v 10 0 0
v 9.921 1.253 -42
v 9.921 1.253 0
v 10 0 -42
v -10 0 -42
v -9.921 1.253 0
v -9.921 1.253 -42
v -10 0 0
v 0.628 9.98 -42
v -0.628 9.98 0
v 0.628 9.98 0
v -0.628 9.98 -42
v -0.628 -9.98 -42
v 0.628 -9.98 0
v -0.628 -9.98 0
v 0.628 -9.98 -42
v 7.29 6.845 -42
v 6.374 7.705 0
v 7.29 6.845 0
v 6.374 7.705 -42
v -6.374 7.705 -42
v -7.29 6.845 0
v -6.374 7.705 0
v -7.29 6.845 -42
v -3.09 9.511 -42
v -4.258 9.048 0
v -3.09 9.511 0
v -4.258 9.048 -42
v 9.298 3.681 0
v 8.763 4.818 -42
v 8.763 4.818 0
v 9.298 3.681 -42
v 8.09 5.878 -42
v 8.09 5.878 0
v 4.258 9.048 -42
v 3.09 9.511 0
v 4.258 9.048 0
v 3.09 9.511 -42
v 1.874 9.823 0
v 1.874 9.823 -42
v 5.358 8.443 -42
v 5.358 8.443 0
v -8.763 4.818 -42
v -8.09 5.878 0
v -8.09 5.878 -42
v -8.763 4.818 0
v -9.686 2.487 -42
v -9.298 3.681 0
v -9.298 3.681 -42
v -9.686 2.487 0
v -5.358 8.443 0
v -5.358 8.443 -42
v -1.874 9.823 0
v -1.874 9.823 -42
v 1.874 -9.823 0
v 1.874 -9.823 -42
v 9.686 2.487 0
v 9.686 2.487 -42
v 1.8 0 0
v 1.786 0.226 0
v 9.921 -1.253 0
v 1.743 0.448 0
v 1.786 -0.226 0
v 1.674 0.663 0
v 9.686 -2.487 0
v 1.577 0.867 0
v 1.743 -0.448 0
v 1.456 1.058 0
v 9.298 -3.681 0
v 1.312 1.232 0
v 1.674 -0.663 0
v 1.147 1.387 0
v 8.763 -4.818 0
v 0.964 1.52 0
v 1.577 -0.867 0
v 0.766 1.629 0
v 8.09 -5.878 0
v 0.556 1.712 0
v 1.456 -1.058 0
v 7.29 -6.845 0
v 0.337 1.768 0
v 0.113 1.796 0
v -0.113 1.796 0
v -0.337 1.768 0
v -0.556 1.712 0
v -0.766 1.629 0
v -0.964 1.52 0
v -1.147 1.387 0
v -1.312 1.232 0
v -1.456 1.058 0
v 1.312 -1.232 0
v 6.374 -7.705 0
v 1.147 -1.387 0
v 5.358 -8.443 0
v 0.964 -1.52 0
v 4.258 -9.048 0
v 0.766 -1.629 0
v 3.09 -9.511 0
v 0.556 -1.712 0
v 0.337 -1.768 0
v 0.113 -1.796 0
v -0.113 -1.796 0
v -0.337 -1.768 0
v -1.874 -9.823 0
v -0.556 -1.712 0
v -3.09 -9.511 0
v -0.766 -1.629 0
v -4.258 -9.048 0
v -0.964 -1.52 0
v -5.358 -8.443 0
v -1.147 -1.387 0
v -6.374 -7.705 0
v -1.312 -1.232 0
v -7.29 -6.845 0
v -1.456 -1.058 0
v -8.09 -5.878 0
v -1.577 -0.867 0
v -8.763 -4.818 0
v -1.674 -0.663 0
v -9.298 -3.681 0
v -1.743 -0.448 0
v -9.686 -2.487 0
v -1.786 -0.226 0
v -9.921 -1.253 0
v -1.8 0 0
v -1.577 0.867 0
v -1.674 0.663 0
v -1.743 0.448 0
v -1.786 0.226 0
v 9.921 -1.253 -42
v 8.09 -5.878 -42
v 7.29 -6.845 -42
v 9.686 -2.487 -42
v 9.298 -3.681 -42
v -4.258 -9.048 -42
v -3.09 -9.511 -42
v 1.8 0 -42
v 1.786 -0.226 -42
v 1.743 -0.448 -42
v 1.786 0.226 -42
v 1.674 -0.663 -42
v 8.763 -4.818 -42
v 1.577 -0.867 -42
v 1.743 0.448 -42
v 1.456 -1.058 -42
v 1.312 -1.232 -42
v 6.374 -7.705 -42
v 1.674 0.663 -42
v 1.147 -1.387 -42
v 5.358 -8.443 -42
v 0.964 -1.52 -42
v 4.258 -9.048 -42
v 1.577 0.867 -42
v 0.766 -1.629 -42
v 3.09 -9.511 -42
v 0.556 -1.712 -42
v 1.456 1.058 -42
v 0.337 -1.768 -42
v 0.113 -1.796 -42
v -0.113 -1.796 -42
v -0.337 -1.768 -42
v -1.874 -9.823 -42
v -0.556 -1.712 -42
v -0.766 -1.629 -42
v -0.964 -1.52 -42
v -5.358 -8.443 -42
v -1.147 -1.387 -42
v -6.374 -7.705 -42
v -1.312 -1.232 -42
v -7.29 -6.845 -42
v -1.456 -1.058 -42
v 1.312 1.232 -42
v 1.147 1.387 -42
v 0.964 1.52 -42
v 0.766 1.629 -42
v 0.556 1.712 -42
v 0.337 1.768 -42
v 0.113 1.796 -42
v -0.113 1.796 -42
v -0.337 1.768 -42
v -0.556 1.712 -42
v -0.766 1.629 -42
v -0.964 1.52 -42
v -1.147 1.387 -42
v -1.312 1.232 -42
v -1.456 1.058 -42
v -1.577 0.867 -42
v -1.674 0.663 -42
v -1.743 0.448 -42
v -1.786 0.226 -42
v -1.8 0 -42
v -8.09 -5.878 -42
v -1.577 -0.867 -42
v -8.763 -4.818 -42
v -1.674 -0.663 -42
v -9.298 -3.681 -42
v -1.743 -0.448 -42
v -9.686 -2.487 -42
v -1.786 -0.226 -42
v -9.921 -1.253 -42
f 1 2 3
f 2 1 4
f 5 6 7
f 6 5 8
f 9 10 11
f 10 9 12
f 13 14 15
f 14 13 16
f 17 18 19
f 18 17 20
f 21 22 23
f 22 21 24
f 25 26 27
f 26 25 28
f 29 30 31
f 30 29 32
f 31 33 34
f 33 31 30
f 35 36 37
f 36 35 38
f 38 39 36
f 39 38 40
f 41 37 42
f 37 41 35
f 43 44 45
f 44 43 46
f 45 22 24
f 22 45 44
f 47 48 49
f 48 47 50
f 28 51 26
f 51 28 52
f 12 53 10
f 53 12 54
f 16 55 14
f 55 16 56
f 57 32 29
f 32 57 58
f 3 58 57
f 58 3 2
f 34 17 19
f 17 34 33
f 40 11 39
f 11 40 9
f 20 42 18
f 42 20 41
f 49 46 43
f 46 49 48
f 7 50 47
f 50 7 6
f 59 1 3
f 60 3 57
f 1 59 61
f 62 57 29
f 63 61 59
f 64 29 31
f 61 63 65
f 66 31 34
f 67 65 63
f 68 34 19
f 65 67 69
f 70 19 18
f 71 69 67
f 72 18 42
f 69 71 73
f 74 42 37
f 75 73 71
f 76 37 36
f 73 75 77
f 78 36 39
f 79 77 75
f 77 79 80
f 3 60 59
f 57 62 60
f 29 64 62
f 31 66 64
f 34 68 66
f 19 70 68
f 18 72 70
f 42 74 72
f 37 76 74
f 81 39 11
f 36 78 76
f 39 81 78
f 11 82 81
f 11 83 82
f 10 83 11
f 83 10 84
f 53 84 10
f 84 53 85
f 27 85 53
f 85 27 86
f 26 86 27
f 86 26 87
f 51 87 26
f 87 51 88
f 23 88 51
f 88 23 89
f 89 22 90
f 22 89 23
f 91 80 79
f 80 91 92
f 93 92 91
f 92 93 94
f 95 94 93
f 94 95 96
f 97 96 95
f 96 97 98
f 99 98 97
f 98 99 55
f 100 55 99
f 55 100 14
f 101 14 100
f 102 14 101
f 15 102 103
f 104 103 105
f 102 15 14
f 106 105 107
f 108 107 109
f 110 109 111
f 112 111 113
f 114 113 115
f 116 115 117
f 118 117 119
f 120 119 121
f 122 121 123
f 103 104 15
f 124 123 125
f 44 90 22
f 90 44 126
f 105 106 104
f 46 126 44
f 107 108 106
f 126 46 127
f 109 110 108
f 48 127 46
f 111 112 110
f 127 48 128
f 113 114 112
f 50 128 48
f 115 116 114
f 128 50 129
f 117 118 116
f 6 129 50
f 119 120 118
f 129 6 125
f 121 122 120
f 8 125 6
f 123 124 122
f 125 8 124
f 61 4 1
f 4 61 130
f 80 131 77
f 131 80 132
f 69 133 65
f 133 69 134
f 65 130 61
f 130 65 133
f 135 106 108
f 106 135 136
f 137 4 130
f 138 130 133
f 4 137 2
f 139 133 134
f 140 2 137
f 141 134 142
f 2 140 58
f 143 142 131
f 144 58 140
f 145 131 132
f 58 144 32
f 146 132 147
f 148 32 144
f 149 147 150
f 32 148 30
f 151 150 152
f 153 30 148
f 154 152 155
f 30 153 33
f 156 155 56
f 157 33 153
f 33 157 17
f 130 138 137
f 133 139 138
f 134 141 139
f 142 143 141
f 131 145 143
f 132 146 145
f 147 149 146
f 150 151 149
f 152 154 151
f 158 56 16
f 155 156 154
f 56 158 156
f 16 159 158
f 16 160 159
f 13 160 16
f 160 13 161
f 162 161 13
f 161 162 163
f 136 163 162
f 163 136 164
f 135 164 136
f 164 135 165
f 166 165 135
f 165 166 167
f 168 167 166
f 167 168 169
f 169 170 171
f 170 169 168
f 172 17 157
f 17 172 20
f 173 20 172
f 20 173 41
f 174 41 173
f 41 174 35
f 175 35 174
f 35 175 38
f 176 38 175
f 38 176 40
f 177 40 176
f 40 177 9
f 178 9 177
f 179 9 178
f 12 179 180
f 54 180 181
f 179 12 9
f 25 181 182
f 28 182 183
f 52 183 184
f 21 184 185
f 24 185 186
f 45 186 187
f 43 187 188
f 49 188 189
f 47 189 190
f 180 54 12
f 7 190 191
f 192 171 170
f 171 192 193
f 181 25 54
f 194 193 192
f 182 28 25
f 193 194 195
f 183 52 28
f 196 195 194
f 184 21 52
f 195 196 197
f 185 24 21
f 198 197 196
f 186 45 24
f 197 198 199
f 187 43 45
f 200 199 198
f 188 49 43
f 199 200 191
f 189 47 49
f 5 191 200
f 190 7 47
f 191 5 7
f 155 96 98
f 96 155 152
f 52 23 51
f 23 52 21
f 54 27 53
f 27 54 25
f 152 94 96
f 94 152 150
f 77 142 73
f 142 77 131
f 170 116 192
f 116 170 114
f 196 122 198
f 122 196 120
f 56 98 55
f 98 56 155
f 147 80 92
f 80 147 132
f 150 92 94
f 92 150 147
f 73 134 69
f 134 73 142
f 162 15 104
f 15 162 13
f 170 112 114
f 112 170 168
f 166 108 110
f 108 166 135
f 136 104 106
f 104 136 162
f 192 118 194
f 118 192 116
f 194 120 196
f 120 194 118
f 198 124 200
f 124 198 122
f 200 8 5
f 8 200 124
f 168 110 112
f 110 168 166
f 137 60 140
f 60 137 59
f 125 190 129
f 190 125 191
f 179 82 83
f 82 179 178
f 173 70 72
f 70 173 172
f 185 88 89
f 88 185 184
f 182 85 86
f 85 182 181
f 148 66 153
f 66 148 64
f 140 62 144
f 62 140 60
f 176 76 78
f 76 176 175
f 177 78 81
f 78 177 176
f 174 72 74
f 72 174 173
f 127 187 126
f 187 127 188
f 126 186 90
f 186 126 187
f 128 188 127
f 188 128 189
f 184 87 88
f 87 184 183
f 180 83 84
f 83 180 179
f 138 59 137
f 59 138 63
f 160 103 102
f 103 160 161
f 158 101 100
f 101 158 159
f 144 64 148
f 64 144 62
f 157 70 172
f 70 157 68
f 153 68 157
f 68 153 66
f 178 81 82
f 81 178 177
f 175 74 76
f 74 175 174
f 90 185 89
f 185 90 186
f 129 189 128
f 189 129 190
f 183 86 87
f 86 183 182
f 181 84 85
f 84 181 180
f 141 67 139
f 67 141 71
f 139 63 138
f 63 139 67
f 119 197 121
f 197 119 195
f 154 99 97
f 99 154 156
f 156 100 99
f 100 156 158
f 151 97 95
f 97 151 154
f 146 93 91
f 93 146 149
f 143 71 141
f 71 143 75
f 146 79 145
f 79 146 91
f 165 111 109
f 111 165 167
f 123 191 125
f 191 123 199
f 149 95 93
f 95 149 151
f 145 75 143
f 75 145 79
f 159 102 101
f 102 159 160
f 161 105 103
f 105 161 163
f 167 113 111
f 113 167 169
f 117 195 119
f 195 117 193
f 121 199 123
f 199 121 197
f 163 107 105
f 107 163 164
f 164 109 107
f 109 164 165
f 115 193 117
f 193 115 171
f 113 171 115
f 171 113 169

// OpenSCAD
$fn = 50;


difference() {
	union() {
		translate(v = [0, 0, -42.0000000000]) {
			cylinder(h = 42, r = 10.0000000000);
		}
	}
	union() {
		#translate(v = [0, 0, -42]) {
			cylinder(h = 42, r = 1.8000000000);
		}
	}
}
